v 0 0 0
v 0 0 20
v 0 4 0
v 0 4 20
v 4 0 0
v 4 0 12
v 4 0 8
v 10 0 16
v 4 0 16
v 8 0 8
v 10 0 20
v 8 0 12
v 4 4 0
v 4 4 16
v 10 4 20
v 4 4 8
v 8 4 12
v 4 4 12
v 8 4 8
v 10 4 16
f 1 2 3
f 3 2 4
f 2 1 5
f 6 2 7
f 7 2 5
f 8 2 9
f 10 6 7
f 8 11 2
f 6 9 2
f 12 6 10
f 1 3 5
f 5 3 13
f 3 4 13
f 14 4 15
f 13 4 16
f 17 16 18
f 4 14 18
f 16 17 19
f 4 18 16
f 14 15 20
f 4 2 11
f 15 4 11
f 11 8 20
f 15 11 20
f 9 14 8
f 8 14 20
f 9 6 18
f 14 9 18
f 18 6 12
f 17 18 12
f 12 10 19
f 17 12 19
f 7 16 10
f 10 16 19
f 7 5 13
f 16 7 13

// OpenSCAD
//difference ()
//{
//        cube ([400, 400, 10], $fn=1000) ;
//        translate ([-10, -10, -5]) cube ([50, 50, 30], $fn=1000) ;
//}
//        
//difference ()
//{
//        cylinder (h = 40, r=10, center = true, $fn=100);
//        rotate ([90,0,0]) cylinder (h = 40, r=9, center = true, $fn=100);
//}

cube ([4, 4, 20]) ;

//translate ([4, 0, 0]) cube ([6, 4, 4]) ;

translate ([4, 0, 8]) cube ([4, 4, 4]) ;

translate ([4, 0, 16]) cube ([6, 4, 4]) ;

//text("OpenSCAD");
